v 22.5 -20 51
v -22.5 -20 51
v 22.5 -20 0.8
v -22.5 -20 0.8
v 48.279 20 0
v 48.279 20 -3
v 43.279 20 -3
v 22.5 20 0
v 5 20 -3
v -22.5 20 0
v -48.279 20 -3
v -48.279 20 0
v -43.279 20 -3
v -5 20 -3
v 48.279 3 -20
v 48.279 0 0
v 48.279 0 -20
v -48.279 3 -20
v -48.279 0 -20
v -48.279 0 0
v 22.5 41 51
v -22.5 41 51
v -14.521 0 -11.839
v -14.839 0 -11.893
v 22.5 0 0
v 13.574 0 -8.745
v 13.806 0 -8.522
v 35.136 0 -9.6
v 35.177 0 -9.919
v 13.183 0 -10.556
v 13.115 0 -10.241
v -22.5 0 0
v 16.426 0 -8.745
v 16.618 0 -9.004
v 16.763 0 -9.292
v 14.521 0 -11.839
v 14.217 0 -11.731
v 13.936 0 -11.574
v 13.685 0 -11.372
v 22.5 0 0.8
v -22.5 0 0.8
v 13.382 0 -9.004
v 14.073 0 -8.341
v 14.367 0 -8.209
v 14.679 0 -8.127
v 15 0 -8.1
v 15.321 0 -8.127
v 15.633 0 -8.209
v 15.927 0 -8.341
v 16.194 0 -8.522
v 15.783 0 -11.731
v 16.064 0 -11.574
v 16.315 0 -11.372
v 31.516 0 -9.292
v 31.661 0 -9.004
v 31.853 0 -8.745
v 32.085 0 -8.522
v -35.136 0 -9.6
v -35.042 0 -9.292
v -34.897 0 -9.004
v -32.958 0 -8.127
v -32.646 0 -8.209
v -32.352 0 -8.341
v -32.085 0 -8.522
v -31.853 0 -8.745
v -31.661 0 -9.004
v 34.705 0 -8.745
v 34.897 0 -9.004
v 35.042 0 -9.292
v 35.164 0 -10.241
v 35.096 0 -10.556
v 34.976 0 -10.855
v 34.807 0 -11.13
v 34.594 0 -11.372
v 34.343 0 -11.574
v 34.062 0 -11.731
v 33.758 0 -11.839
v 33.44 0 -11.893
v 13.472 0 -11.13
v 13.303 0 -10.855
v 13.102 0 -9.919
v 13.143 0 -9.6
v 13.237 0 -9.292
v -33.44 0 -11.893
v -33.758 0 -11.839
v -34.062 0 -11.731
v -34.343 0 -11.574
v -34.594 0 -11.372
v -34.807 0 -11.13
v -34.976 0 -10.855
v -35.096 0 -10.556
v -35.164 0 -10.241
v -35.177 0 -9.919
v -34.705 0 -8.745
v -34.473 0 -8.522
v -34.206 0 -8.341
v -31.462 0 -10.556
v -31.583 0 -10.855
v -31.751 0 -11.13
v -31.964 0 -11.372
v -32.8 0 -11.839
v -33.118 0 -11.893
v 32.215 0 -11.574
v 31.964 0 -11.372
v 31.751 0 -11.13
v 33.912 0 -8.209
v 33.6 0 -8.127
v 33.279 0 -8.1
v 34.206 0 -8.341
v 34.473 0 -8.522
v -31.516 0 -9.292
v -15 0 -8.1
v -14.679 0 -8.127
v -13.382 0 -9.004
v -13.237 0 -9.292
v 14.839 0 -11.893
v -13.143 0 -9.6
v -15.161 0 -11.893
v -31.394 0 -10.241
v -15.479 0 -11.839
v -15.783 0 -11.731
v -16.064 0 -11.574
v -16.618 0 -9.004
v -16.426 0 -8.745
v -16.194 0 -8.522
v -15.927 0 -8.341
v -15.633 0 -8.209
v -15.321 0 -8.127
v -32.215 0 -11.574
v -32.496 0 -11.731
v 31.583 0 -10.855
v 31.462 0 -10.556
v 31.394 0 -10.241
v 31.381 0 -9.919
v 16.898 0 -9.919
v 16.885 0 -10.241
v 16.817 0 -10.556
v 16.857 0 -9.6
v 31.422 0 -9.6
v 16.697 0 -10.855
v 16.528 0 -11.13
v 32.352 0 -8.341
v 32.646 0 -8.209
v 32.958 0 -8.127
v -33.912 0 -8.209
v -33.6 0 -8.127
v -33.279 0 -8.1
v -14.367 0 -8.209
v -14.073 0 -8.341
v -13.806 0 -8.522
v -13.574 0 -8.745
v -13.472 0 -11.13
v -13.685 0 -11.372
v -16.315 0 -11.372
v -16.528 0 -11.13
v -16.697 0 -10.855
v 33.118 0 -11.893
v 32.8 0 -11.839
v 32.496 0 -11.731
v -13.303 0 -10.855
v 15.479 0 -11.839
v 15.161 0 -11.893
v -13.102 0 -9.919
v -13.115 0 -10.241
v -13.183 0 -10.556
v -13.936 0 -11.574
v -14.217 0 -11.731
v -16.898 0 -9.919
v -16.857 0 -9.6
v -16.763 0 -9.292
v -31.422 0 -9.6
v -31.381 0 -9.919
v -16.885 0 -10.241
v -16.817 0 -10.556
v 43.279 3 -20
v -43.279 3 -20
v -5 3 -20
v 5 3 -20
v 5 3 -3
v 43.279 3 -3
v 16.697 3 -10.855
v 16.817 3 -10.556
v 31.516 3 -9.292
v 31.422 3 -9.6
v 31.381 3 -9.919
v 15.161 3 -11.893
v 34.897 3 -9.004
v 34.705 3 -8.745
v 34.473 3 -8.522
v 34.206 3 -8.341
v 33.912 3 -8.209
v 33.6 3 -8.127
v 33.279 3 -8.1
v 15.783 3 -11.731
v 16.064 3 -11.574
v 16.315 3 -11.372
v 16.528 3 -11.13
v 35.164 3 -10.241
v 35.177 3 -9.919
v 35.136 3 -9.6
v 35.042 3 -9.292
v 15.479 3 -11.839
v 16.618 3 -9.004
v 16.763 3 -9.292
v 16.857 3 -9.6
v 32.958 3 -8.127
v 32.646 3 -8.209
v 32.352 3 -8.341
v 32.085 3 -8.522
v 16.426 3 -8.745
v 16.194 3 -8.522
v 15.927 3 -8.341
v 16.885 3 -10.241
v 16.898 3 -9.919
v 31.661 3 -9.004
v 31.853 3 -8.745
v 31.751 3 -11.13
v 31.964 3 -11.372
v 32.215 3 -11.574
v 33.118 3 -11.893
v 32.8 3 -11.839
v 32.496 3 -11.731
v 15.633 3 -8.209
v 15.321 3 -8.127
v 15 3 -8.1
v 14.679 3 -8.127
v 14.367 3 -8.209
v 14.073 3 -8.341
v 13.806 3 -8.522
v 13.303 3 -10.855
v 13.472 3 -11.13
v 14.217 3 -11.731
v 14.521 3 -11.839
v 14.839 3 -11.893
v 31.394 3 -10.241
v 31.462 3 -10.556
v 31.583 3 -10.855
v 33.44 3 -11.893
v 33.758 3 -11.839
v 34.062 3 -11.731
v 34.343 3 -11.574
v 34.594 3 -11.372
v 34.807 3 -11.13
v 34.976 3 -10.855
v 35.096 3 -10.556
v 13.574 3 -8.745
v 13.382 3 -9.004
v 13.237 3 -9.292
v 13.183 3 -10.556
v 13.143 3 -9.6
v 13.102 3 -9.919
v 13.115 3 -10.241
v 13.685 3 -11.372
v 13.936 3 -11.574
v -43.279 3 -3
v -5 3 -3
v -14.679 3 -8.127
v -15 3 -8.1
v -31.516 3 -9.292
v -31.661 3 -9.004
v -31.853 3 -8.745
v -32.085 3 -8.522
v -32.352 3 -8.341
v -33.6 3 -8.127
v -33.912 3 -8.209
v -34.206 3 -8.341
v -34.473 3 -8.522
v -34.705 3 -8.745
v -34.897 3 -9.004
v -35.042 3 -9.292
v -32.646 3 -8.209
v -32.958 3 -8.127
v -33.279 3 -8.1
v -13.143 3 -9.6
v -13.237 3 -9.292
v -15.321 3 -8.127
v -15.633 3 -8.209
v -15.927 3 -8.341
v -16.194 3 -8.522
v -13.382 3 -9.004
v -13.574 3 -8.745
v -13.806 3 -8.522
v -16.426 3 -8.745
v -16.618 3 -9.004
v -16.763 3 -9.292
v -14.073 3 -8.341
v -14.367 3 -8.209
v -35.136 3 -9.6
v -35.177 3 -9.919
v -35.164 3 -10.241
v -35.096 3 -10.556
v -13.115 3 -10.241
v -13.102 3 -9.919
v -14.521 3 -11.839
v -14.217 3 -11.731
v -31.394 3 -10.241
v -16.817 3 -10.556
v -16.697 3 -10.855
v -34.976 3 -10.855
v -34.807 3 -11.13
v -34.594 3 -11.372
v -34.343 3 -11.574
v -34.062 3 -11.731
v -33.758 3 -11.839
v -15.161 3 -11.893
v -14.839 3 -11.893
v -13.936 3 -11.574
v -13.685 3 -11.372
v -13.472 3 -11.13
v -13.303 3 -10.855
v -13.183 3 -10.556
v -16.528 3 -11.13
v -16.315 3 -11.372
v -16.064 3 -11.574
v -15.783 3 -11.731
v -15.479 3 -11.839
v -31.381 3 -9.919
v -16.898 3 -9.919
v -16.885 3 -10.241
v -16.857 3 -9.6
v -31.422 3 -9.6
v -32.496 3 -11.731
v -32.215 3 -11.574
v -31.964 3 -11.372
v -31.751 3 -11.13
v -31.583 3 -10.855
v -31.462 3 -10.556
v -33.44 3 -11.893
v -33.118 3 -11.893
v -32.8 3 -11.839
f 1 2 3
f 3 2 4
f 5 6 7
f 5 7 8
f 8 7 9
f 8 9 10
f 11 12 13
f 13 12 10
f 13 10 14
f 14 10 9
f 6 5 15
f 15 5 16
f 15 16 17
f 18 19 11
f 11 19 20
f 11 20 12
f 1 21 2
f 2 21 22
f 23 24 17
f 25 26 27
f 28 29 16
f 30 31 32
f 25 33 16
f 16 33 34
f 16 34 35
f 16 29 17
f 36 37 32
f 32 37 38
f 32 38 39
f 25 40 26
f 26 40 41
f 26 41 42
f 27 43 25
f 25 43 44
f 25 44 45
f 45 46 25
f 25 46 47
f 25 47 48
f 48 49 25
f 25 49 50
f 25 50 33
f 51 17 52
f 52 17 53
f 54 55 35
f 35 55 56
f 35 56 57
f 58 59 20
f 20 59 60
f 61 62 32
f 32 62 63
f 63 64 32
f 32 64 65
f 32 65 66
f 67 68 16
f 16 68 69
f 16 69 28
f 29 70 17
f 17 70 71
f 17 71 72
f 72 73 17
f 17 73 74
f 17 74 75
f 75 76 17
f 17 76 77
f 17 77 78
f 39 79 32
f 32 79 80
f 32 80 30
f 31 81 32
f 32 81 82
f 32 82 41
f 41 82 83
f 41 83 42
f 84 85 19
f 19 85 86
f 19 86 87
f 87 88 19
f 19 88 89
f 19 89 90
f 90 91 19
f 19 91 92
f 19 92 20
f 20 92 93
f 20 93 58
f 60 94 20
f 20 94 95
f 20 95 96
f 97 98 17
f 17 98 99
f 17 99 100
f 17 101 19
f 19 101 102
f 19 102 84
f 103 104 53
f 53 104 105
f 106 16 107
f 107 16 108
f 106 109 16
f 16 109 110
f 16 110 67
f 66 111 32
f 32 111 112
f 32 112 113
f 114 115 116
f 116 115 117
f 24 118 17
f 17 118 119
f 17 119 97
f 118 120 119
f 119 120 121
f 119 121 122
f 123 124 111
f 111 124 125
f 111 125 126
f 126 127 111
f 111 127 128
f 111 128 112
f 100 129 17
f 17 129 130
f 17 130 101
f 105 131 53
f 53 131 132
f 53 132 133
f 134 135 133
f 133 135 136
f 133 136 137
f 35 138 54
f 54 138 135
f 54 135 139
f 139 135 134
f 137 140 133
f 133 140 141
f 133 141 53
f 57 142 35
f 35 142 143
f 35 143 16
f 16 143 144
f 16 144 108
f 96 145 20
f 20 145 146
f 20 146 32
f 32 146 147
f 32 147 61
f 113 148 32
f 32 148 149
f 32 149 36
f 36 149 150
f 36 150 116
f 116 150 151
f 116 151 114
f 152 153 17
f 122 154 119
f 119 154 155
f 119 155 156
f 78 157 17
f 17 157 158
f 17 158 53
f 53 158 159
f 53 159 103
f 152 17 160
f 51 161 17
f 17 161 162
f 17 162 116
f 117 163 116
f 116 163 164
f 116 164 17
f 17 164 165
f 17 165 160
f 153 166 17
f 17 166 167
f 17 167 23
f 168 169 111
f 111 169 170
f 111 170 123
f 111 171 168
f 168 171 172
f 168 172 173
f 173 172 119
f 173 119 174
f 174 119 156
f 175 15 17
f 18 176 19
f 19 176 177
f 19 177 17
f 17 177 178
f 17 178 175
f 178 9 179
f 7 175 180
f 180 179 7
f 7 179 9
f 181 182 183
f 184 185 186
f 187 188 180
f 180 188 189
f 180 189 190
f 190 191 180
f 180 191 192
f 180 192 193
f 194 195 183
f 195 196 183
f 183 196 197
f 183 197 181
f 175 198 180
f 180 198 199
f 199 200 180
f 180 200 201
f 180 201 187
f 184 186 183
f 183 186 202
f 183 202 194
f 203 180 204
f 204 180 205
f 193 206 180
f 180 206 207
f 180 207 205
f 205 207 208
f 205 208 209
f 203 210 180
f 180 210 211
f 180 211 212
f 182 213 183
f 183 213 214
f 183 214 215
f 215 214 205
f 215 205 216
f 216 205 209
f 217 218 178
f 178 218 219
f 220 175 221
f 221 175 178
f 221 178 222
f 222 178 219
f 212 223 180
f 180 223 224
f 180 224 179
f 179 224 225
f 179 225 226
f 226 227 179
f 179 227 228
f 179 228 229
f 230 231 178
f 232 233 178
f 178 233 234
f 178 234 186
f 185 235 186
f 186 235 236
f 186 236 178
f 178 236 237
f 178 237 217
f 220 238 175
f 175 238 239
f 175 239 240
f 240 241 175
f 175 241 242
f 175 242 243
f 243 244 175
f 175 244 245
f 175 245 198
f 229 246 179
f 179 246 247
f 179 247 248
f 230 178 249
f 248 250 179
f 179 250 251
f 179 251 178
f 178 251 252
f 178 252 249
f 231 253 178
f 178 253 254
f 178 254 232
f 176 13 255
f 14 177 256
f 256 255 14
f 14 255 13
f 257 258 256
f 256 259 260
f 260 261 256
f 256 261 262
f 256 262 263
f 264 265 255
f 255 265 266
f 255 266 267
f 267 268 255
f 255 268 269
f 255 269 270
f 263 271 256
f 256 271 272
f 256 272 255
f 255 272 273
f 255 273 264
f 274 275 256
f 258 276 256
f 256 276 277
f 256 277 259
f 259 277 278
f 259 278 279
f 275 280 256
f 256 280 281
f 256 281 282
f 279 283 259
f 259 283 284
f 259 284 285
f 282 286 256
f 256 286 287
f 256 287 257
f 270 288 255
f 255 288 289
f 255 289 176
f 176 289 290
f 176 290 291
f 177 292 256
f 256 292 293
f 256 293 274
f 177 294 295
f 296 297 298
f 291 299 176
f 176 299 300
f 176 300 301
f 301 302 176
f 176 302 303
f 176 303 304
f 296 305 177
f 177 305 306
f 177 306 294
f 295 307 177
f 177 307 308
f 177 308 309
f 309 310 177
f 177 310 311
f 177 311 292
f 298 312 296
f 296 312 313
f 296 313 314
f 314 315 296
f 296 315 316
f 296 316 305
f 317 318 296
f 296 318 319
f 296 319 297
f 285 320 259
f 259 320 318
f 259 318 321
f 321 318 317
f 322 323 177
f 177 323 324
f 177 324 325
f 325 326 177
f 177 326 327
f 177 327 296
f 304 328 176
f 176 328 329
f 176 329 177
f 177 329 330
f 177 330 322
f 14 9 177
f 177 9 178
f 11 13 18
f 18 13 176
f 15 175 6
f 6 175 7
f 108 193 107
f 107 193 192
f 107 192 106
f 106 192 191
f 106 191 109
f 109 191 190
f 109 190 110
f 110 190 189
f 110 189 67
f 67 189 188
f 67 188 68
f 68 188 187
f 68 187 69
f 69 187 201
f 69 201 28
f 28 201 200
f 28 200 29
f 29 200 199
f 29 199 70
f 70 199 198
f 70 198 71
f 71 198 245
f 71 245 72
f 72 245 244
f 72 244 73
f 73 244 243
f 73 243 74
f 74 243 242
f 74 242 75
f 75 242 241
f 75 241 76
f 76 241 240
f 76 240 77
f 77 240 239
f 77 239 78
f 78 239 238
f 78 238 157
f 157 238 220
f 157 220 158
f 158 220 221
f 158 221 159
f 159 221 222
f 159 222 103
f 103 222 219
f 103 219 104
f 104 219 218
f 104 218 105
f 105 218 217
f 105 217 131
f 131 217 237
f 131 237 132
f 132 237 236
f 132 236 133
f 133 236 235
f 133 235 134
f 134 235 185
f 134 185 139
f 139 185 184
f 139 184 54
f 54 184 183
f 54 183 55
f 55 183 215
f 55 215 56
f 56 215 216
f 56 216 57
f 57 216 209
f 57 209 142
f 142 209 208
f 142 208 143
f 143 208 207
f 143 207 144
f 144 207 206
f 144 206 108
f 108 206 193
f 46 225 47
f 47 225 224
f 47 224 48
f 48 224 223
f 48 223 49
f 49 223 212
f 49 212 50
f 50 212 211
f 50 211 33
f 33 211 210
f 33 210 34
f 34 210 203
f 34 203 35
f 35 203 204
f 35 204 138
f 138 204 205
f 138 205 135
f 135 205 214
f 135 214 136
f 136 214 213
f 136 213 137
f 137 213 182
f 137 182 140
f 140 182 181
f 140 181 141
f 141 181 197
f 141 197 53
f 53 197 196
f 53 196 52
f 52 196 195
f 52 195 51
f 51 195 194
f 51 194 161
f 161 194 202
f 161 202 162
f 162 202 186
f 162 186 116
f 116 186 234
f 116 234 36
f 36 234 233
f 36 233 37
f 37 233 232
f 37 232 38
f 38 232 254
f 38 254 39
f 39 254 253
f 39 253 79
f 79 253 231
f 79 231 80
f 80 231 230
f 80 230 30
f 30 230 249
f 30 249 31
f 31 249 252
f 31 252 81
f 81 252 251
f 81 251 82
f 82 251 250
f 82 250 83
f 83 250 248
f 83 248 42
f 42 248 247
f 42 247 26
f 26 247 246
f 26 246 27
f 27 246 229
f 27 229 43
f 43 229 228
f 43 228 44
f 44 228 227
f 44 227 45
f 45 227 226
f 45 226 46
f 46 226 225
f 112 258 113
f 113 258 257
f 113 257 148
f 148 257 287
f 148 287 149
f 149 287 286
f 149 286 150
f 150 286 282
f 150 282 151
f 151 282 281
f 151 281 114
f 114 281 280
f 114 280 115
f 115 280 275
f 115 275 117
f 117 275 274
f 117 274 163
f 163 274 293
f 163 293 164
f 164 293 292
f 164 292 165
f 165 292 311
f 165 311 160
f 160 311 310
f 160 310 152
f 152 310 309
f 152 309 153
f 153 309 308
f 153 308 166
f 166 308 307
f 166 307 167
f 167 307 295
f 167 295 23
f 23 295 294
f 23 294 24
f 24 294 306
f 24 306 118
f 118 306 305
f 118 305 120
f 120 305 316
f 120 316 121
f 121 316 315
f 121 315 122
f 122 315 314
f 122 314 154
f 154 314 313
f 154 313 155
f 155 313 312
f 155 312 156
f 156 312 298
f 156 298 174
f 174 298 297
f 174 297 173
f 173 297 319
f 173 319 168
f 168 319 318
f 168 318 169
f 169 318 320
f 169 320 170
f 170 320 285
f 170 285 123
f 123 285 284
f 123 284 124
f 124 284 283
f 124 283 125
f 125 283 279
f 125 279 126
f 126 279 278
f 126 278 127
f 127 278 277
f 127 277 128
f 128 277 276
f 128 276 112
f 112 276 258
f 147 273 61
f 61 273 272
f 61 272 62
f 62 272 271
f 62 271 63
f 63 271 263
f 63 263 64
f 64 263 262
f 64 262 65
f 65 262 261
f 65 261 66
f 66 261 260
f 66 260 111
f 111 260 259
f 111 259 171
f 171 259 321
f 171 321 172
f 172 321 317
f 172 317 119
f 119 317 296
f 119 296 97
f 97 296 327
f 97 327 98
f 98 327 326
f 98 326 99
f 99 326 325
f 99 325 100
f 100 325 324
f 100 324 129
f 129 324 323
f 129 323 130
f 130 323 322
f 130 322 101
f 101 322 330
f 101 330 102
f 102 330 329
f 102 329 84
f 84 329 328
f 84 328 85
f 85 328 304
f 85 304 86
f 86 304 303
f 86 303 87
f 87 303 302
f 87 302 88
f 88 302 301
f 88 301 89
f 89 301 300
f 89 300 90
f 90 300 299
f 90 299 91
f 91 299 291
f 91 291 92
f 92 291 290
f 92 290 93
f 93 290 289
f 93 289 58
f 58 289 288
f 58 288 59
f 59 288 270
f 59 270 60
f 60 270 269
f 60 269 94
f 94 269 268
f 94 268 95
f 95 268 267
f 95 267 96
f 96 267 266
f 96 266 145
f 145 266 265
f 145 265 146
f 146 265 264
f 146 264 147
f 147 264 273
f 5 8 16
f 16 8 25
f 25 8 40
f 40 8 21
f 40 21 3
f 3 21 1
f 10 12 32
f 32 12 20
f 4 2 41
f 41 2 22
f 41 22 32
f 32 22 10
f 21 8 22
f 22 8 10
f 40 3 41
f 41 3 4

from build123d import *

# Parameters (mm, degrees)
SKETCH_1_W             = 96.558139534
SKETCH_1_H             = 40
EXTRUDE_1_DEPTH        = 51
SKETCH_2_W             = 96.558139534
SKETCH_2_H             = 20
EXTRUDE_2_DEPTH        = 20
SKETCH_4_W             = 38.279069767
SKETCH_4_H             = 17
CUT_EXTRUDE_1_DEPTH    = 17
CUT_EXTRUDE_2_DEPTH    = 112.015648944
HOLE_WIZARD_M4_1_D     = 3.8
HOLE_WIZARD_M4_1_DEPTH = 10.1
HOLE_WIZARD_M4_1_TIP   = 1.141635176
SKETCH_9_W             = 25.779069767
SKETCH_9_H             = 40
CUT_EXTRUDE_3_DEPTH    = 51
EXTRUDE_START          = -45
EXTRUDE_4_DEPTH        = 45
SKETCH_11_W            = 45
SKETCH_11_H            = 20
CUT_EXTRUDE_4_DEPTH    = 0.8


with BuildPart() as part:
    # 스케치1 → 보스-돌출1 (new body)
    with BuildSketch(Plane.XY):
        Rectangle(SKETCH_1_W, SKETCH_1_H)
    extrude(amount=EXTRUDE_1_DEPTH)

    # 스케치2 → 보스-돌출2 (add)
    with BuildSketch(Plane(origin=(0, 0, 0), x_dir=(-1, 0, 0), z_dir=(0, 0, -1))):
        with Locations((0, 10)):
            Rectangle(SKETCH_2_W, SKETCH_2_H)
    extrude(amount=EXTRUDE_2_DEPTH)

    # 스케치4 → 컷-돌출1 (cut)
    with BuildSketch(Plane(origin=(0, 20, 0), x_dir=(1, 0, 0), z_dir=(0, 1, 0))):
        with Locations((-24.139534884, 11.5)):
            Rectangle(SKETCH_4_W, SKETCH_4_H)
        with Locations((24.139534884, 11.5)):
            Rectangle(SKETCH_4_W, SKETCH_4_H)
    extrude(amount=-CUT_EXTRUDE_1_DEPTH, mode=Mode.SUBTRACT)

    # 스케치6 → 컷-돌출2 (cut, through all)
    with BuildSketch(Plane(origin=(48.279069767, 0, 0), x_dir=(0, 0, -1), z_dir=(1, 0, 0))):
        Polygon((3, 20), (20, 20), (20, 3), align=None)
    extrude(amount=-CUT_EXTRUDE_2_DEPTH, mode=Mode.SUBTRACT)

    # M4 나사 구멍1
    with Locations(Plane(origin=(0, 3, 0), x_dir=(1, 0, 0), z_dir=(0, 1, 0))):
        with Locations((-33.279069767, 10), (-15, 10), (15, 10), (33.279069767, 10)):
            Hole(HOLE_WIZARD_M4_1_D / 2, depth=HOLE_WIZARD_M4_1_DEPTH)
            with Locations((0, 0, -(HOLE_WIZARD_M4_1_DEPTH + HOLE_WIZARD_M4_1_TIP / 2))):  # 118° drill point
                Cone(0, HOLE_WIZARD_M4_1_D / 2, HOLE_WIZARD_M4_1_TIP, mode=Mode.SUBTRACT)

    # 스케치9 → 컷-돌출3 (cut)
    with BuildSketch(Plane.XY.offset(51)):
        with Locations((-35.389534884, 0)):
            Rectangle(SKETCH_9_W, SKETCH_9_H)
        with Locations((35.389534884, 0)):
            Rectangle(SKETCH_9_W, SKETCH_9_H)
    extrude(amount=-CUT_EXTRUDE_3_DEPTH, mode=Mode.SUBTRACT)

    # 스케치10 → 보스-돌출4 (add)
    with BuildSketch(Plane.ZY.offset(22.5).offset(EXTRUDE_START)):
        Polygon((51, 20), (51, 41), (0, 20), align=None)
    extrude(amount=EXTRUDE_4_DEPTH)

    # 스케치11 → 컷-돌출4 (cut)
    with BuildSketch(Plane(origin=(0, 0, 0), x_dir=(-1, 0, 0), z_dir=(0, 0, -1))):
        with Locations((0, -10)):
            Rectangle(SKETCH_11_W, SKETCH_11_H)
    extrude(amount=-CUT_EXTRUDE_4_DEPTH, mode=Mode.SUBTRACT)


solid = part.part
